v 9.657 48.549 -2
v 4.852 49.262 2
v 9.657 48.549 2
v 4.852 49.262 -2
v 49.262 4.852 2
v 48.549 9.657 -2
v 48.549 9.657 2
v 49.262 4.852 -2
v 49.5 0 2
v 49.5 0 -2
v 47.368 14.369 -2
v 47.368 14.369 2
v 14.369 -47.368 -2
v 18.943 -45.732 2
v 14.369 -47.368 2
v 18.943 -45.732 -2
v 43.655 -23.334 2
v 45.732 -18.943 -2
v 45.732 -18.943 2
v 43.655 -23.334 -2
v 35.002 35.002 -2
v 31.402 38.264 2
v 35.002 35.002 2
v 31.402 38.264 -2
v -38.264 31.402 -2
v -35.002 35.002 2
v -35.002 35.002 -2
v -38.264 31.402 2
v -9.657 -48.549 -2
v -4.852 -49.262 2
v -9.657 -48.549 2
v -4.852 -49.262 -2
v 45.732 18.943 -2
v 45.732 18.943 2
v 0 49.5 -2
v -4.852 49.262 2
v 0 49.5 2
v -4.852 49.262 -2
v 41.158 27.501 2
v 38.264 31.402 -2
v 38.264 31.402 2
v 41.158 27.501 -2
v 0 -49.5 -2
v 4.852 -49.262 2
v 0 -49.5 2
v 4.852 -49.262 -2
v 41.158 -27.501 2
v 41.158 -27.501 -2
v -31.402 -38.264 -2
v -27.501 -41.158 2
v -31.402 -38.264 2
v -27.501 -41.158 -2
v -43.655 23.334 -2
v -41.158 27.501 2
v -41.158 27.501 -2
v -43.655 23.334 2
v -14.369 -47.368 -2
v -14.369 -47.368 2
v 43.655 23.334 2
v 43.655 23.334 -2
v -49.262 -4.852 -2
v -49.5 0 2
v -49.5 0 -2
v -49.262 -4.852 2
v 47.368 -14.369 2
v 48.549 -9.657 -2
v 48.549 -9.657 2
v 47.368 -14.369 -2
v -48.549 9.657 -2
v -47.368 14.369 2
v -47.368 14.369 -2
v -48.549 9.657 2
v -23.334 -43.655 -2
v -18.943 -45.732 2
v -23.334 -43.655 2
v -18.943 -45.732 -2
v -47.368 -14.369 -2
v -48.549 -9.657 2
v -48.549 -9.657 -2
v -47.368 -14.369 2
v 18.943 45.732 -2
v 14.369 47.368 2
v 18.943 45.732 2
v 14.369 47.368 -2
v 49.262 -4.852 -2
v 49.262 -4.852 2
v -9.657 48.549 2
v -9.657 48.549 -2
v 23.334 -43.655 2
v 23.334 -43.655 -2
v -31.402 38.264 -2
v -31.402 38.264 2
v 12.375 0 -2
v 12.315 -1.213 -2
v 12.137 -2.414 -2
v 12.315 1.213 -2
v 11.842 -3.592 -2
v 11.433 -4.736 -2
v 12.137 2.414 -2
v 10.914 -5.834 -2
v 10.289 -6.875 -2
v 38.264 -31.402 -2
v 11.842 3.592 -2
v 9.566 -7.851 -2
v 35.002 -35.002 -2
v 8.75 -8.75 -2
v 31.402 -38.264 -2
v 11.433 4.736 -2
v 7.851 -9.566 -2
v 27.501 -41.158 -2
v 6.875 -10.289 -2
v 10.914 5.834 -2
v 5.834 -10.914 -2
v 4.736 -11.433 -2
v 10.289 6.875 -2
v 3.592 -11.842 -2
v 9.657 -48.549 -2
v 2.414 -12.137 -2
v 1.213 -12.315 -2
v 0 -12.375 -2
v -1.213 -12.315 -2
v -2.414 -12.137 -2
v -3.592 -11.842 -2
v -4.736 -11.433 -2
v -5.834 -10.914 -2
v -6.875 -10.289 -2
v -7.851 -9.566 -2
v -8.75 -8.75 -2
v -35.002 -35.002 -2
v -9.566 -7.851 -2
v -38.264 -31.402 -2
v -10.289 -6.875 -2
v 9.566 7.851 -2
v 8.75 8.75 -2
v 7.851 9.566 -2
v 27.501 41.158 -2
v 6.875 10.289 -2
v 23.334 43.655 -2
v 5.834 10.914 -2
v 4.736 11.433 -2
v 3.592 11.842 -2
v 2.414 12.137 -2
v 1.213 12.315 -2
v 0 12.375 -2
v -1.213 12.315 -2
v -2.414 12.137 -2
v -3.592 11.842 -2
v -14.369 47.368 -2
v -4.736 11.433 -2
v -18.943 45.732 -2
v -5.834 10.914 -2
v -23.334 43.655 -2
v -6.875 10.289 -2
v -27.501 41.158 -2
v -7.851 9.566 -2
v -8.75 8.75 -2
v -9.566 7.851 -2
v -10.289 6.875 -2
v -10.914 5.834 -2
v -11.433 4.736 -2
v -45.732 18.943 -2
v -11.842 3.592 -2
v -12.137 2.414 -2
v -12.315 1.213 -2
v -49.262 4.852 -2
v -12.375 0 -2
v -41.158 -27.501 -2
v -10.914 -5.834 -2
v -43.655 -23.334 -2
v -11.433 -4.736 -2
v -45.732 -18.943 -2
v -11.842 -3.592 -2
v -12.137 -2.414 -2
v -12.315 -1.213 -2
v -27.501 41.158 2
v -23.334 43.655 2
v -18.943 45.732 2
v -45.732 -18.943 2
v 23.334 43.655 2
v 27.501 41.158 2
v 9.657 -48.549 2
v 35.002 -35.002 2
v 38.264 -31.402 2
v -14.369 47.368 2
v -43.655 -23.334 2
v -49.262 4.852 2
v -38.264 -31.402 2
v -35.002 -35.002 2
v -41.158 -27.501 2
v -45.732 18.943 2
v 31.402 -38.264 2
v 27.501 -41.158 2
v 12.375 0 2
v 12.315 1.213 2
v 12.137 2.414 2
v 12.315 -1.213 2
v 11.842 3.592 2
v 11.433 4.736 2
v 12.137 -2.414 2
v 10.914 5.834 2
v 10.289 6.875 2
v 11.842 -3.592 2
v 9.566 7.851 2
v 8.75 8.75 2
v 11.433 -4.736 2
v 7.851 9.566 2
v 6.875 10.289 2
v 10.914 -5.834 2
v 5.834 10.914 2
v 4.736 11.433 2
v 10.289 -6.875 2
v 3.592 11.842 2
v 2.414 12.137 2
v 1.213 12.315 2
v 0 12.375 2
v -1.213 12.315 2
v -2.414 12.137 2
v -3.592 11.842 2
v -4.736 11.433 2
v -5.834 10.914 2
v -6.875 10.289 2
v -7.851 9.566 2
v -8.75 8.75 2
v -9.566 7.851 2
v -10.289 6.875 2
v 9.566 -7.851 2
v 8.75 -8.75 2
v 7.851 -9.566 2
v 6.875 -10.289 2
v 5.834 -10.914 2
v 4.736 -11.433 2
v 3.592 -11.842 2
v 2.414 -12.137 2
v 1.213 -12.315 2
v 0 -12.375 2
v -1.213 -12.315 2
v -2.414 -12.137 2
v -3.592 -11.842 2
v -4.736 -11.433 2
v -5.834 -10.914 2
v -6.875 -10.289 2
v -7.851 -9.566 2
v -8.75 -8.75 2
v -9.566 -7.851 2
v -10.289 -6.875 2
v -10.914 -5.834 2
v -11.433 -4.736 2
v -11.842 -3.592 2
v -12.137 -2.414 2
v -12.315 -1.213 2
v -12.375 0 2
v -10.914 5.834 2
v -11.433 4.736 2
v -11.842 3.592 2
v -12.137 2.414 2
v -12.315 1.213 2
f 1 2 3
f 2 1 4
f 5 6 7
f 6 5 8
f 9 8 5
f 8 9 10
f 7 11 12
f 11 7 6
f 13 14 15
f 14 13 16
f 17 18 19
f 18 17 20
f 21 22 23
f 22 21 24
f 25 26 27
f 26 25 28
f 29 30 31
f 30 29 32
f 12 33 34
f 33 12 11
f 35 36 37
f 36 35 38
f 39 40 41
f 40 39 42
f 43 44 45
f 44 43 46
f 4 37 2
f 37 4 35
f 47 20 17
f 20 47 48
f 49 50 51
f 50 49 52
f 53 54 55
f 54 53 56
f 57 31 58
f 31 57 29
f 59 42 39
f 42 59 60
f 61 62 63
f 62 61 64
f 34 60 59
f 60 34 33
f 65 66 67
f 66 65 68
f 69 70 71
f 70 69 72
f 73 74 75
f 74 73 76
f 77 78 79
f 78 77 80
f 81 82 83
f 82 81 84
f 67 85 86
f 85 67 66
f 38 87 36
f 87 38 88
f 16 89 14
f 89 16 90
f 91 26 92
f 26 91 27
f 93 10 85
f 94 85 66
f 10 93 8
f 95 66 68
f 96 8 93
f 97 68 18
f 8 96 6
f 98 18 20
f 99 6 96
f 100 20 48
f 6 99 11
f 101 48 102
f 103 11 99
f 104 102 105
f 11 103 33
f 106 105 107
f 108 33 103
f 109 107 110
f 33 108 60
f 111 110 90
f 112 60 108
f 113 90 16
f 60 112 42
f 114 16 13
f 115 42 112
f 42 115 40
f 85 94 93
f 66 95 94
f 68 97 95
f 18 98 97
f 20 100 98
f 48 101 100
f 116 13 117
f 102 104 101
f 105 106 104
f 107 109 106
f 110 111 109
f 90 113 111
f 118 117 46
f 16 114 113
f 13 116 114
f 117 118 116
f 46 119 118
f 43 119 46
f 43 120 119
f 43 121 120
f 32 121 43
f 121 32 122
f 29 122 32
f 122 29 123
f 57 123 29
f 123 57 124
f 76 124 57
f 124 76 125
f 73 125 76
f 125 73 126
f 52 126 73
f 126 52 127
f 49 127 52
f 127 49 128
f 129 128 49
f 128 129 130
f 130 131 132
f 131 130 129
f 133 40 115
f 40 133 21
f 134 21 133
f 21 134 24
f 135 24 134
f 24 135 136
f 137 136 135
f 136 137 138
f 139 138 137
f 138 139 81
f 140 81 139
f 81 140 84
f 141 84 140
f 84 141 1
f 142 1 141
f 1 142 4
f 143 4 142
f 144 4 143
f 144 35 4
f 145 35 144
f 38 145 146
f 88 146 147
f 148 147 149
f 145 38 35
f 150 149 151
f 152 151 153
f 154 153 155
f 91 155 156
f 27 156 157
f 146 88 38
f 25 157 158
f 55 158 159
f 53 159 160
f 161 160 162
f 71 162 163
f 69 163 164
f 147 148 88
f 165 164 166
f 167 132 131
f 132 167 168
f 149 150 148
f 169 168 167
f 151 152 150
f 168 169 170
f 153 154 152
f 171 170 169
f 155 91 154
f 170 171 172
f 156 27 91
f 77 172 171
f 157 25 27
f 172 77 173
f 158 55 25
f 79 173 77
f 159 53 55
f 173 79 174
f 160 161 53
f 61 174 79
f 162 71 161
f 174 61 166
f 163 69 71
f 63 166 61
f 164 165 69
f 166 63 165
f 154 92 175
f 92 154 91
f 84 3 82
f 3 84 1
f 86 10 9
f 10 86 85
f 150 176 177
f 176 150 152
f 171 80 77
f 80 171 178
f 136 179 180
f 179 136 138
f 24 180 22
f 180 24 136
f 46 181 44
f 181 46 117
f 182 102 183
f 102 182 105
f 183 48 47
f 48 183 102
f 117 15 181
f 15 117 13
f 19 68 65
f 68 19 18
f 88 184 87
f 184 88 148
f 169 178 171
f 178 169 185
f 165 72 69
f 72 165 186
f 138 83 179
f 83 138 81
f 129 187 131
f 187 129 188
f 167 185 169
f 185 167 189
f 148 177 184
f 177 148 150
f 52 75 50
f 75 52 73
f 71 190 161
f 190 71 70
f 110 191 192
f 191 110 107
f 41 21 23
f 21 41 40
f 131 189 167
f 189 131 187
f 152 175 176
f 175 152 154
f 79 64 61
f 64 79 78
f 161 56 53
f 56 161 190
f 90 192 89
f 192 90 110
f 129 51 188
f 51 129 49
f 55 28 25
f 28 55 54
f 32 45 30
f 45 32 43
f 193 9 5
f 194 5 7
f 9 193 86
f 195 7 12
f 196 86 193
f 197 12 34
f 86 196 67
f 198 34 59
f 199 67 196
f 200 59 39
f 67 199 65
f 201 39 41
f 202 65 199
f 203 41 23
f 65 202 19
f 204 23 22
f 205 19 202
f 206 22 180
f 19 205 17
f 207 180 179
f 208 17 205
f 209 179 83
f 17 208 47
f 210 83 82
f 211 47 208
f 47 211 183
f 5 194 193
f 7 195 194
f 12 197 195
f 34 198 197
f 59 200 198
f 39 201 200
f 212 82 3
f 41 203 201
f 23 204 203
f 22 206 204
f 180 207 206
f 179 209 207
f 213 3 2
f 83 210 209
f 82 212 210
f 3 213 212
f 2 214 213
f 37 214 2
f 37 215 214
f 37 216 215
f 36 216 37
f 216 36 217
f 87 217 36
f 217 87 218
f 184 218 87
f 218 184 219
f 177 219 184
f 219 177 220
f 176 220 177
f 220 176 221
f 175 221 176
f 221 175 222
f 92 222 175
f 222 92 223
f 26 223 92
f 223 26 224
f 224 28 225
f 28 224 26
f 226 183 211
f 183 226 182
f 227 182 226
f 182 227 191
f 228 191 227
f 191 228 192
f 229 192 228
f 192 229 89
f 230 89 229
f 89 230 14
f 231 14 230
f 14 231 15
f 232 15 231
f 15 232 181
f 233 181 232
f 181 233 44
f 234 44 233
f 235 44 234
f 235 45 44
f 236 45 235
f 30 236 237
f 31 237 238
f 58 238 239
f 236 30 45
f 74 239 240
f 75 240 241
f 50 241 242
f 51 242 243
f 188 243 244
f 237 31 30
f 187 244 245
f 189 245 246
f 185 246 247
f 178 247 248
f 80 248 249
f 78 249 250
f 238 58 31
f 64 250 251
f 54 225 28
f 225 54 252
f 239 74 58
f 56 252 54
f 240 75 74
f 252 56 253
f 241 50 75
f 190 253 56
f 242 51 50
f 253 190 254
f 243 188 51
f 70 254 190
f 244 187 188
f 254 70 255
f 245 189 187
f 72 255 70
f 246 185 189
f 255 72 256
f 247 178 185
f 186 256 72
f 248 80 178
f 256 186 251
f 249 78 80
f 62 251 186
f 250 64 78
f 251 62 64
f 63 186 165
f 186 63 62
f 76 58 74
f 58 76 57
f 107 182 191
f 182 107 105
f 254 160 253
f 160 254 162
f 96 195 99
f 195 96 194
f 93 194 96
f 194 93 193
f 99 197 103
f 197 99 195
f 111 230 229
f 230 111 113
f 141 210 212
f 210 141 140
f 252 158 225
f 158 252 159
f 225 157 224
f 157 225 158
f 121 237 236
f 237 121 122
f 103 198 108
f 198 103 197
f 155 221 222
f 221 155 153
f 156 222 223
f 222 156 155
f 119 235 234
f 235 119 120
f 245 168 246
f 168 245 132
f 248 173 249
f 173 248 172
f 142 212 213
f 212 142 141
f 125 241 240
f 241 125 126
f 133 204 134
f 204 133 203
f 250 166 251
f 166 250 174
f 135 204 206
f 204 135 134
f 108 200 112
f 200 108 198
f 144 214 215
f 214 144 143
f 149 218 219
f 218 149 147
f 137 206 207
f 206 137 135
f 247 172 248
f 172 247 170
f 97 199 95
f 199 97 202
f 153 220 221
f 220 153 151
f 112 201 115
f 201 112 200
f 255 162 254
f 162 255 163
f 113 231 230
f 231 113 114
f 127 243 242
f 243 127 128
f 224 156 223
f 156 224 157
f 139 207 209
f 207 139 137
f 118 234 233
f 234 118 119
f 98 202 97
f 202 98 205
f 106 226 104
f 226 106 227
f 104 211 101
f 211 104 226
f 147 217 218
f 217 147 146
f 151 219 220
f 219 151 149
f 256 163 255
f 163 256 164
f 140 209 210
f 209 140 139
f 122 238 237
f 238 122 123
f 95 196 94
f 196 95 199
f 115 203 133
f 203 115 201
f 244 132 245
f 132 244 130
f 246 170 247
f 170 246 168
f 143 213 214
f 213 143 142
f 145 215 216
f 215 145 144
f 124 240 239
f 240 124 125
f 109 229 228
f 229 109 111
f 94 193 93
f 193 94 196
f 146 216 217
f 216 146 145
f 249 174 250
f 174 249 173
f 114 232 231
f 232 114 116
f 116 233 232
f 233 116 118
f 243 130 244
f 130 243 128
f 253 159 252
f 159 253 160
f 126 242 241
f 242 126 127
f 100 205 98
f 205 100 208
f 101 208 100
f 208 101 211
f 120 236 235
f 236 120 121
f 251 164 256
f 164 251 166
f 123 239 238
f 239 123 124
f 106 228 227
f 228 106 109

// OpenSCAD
tube_diameter = 24.75;
separator_height = 4;
separator_diameter = tube_diameter * 4;

$fn = 64;

difference() {
	cylinder(h=separator_height, d=separator_diameter, center=true);
	cylinder(h=separator_height, d=tube_diameter, center=true);
}
